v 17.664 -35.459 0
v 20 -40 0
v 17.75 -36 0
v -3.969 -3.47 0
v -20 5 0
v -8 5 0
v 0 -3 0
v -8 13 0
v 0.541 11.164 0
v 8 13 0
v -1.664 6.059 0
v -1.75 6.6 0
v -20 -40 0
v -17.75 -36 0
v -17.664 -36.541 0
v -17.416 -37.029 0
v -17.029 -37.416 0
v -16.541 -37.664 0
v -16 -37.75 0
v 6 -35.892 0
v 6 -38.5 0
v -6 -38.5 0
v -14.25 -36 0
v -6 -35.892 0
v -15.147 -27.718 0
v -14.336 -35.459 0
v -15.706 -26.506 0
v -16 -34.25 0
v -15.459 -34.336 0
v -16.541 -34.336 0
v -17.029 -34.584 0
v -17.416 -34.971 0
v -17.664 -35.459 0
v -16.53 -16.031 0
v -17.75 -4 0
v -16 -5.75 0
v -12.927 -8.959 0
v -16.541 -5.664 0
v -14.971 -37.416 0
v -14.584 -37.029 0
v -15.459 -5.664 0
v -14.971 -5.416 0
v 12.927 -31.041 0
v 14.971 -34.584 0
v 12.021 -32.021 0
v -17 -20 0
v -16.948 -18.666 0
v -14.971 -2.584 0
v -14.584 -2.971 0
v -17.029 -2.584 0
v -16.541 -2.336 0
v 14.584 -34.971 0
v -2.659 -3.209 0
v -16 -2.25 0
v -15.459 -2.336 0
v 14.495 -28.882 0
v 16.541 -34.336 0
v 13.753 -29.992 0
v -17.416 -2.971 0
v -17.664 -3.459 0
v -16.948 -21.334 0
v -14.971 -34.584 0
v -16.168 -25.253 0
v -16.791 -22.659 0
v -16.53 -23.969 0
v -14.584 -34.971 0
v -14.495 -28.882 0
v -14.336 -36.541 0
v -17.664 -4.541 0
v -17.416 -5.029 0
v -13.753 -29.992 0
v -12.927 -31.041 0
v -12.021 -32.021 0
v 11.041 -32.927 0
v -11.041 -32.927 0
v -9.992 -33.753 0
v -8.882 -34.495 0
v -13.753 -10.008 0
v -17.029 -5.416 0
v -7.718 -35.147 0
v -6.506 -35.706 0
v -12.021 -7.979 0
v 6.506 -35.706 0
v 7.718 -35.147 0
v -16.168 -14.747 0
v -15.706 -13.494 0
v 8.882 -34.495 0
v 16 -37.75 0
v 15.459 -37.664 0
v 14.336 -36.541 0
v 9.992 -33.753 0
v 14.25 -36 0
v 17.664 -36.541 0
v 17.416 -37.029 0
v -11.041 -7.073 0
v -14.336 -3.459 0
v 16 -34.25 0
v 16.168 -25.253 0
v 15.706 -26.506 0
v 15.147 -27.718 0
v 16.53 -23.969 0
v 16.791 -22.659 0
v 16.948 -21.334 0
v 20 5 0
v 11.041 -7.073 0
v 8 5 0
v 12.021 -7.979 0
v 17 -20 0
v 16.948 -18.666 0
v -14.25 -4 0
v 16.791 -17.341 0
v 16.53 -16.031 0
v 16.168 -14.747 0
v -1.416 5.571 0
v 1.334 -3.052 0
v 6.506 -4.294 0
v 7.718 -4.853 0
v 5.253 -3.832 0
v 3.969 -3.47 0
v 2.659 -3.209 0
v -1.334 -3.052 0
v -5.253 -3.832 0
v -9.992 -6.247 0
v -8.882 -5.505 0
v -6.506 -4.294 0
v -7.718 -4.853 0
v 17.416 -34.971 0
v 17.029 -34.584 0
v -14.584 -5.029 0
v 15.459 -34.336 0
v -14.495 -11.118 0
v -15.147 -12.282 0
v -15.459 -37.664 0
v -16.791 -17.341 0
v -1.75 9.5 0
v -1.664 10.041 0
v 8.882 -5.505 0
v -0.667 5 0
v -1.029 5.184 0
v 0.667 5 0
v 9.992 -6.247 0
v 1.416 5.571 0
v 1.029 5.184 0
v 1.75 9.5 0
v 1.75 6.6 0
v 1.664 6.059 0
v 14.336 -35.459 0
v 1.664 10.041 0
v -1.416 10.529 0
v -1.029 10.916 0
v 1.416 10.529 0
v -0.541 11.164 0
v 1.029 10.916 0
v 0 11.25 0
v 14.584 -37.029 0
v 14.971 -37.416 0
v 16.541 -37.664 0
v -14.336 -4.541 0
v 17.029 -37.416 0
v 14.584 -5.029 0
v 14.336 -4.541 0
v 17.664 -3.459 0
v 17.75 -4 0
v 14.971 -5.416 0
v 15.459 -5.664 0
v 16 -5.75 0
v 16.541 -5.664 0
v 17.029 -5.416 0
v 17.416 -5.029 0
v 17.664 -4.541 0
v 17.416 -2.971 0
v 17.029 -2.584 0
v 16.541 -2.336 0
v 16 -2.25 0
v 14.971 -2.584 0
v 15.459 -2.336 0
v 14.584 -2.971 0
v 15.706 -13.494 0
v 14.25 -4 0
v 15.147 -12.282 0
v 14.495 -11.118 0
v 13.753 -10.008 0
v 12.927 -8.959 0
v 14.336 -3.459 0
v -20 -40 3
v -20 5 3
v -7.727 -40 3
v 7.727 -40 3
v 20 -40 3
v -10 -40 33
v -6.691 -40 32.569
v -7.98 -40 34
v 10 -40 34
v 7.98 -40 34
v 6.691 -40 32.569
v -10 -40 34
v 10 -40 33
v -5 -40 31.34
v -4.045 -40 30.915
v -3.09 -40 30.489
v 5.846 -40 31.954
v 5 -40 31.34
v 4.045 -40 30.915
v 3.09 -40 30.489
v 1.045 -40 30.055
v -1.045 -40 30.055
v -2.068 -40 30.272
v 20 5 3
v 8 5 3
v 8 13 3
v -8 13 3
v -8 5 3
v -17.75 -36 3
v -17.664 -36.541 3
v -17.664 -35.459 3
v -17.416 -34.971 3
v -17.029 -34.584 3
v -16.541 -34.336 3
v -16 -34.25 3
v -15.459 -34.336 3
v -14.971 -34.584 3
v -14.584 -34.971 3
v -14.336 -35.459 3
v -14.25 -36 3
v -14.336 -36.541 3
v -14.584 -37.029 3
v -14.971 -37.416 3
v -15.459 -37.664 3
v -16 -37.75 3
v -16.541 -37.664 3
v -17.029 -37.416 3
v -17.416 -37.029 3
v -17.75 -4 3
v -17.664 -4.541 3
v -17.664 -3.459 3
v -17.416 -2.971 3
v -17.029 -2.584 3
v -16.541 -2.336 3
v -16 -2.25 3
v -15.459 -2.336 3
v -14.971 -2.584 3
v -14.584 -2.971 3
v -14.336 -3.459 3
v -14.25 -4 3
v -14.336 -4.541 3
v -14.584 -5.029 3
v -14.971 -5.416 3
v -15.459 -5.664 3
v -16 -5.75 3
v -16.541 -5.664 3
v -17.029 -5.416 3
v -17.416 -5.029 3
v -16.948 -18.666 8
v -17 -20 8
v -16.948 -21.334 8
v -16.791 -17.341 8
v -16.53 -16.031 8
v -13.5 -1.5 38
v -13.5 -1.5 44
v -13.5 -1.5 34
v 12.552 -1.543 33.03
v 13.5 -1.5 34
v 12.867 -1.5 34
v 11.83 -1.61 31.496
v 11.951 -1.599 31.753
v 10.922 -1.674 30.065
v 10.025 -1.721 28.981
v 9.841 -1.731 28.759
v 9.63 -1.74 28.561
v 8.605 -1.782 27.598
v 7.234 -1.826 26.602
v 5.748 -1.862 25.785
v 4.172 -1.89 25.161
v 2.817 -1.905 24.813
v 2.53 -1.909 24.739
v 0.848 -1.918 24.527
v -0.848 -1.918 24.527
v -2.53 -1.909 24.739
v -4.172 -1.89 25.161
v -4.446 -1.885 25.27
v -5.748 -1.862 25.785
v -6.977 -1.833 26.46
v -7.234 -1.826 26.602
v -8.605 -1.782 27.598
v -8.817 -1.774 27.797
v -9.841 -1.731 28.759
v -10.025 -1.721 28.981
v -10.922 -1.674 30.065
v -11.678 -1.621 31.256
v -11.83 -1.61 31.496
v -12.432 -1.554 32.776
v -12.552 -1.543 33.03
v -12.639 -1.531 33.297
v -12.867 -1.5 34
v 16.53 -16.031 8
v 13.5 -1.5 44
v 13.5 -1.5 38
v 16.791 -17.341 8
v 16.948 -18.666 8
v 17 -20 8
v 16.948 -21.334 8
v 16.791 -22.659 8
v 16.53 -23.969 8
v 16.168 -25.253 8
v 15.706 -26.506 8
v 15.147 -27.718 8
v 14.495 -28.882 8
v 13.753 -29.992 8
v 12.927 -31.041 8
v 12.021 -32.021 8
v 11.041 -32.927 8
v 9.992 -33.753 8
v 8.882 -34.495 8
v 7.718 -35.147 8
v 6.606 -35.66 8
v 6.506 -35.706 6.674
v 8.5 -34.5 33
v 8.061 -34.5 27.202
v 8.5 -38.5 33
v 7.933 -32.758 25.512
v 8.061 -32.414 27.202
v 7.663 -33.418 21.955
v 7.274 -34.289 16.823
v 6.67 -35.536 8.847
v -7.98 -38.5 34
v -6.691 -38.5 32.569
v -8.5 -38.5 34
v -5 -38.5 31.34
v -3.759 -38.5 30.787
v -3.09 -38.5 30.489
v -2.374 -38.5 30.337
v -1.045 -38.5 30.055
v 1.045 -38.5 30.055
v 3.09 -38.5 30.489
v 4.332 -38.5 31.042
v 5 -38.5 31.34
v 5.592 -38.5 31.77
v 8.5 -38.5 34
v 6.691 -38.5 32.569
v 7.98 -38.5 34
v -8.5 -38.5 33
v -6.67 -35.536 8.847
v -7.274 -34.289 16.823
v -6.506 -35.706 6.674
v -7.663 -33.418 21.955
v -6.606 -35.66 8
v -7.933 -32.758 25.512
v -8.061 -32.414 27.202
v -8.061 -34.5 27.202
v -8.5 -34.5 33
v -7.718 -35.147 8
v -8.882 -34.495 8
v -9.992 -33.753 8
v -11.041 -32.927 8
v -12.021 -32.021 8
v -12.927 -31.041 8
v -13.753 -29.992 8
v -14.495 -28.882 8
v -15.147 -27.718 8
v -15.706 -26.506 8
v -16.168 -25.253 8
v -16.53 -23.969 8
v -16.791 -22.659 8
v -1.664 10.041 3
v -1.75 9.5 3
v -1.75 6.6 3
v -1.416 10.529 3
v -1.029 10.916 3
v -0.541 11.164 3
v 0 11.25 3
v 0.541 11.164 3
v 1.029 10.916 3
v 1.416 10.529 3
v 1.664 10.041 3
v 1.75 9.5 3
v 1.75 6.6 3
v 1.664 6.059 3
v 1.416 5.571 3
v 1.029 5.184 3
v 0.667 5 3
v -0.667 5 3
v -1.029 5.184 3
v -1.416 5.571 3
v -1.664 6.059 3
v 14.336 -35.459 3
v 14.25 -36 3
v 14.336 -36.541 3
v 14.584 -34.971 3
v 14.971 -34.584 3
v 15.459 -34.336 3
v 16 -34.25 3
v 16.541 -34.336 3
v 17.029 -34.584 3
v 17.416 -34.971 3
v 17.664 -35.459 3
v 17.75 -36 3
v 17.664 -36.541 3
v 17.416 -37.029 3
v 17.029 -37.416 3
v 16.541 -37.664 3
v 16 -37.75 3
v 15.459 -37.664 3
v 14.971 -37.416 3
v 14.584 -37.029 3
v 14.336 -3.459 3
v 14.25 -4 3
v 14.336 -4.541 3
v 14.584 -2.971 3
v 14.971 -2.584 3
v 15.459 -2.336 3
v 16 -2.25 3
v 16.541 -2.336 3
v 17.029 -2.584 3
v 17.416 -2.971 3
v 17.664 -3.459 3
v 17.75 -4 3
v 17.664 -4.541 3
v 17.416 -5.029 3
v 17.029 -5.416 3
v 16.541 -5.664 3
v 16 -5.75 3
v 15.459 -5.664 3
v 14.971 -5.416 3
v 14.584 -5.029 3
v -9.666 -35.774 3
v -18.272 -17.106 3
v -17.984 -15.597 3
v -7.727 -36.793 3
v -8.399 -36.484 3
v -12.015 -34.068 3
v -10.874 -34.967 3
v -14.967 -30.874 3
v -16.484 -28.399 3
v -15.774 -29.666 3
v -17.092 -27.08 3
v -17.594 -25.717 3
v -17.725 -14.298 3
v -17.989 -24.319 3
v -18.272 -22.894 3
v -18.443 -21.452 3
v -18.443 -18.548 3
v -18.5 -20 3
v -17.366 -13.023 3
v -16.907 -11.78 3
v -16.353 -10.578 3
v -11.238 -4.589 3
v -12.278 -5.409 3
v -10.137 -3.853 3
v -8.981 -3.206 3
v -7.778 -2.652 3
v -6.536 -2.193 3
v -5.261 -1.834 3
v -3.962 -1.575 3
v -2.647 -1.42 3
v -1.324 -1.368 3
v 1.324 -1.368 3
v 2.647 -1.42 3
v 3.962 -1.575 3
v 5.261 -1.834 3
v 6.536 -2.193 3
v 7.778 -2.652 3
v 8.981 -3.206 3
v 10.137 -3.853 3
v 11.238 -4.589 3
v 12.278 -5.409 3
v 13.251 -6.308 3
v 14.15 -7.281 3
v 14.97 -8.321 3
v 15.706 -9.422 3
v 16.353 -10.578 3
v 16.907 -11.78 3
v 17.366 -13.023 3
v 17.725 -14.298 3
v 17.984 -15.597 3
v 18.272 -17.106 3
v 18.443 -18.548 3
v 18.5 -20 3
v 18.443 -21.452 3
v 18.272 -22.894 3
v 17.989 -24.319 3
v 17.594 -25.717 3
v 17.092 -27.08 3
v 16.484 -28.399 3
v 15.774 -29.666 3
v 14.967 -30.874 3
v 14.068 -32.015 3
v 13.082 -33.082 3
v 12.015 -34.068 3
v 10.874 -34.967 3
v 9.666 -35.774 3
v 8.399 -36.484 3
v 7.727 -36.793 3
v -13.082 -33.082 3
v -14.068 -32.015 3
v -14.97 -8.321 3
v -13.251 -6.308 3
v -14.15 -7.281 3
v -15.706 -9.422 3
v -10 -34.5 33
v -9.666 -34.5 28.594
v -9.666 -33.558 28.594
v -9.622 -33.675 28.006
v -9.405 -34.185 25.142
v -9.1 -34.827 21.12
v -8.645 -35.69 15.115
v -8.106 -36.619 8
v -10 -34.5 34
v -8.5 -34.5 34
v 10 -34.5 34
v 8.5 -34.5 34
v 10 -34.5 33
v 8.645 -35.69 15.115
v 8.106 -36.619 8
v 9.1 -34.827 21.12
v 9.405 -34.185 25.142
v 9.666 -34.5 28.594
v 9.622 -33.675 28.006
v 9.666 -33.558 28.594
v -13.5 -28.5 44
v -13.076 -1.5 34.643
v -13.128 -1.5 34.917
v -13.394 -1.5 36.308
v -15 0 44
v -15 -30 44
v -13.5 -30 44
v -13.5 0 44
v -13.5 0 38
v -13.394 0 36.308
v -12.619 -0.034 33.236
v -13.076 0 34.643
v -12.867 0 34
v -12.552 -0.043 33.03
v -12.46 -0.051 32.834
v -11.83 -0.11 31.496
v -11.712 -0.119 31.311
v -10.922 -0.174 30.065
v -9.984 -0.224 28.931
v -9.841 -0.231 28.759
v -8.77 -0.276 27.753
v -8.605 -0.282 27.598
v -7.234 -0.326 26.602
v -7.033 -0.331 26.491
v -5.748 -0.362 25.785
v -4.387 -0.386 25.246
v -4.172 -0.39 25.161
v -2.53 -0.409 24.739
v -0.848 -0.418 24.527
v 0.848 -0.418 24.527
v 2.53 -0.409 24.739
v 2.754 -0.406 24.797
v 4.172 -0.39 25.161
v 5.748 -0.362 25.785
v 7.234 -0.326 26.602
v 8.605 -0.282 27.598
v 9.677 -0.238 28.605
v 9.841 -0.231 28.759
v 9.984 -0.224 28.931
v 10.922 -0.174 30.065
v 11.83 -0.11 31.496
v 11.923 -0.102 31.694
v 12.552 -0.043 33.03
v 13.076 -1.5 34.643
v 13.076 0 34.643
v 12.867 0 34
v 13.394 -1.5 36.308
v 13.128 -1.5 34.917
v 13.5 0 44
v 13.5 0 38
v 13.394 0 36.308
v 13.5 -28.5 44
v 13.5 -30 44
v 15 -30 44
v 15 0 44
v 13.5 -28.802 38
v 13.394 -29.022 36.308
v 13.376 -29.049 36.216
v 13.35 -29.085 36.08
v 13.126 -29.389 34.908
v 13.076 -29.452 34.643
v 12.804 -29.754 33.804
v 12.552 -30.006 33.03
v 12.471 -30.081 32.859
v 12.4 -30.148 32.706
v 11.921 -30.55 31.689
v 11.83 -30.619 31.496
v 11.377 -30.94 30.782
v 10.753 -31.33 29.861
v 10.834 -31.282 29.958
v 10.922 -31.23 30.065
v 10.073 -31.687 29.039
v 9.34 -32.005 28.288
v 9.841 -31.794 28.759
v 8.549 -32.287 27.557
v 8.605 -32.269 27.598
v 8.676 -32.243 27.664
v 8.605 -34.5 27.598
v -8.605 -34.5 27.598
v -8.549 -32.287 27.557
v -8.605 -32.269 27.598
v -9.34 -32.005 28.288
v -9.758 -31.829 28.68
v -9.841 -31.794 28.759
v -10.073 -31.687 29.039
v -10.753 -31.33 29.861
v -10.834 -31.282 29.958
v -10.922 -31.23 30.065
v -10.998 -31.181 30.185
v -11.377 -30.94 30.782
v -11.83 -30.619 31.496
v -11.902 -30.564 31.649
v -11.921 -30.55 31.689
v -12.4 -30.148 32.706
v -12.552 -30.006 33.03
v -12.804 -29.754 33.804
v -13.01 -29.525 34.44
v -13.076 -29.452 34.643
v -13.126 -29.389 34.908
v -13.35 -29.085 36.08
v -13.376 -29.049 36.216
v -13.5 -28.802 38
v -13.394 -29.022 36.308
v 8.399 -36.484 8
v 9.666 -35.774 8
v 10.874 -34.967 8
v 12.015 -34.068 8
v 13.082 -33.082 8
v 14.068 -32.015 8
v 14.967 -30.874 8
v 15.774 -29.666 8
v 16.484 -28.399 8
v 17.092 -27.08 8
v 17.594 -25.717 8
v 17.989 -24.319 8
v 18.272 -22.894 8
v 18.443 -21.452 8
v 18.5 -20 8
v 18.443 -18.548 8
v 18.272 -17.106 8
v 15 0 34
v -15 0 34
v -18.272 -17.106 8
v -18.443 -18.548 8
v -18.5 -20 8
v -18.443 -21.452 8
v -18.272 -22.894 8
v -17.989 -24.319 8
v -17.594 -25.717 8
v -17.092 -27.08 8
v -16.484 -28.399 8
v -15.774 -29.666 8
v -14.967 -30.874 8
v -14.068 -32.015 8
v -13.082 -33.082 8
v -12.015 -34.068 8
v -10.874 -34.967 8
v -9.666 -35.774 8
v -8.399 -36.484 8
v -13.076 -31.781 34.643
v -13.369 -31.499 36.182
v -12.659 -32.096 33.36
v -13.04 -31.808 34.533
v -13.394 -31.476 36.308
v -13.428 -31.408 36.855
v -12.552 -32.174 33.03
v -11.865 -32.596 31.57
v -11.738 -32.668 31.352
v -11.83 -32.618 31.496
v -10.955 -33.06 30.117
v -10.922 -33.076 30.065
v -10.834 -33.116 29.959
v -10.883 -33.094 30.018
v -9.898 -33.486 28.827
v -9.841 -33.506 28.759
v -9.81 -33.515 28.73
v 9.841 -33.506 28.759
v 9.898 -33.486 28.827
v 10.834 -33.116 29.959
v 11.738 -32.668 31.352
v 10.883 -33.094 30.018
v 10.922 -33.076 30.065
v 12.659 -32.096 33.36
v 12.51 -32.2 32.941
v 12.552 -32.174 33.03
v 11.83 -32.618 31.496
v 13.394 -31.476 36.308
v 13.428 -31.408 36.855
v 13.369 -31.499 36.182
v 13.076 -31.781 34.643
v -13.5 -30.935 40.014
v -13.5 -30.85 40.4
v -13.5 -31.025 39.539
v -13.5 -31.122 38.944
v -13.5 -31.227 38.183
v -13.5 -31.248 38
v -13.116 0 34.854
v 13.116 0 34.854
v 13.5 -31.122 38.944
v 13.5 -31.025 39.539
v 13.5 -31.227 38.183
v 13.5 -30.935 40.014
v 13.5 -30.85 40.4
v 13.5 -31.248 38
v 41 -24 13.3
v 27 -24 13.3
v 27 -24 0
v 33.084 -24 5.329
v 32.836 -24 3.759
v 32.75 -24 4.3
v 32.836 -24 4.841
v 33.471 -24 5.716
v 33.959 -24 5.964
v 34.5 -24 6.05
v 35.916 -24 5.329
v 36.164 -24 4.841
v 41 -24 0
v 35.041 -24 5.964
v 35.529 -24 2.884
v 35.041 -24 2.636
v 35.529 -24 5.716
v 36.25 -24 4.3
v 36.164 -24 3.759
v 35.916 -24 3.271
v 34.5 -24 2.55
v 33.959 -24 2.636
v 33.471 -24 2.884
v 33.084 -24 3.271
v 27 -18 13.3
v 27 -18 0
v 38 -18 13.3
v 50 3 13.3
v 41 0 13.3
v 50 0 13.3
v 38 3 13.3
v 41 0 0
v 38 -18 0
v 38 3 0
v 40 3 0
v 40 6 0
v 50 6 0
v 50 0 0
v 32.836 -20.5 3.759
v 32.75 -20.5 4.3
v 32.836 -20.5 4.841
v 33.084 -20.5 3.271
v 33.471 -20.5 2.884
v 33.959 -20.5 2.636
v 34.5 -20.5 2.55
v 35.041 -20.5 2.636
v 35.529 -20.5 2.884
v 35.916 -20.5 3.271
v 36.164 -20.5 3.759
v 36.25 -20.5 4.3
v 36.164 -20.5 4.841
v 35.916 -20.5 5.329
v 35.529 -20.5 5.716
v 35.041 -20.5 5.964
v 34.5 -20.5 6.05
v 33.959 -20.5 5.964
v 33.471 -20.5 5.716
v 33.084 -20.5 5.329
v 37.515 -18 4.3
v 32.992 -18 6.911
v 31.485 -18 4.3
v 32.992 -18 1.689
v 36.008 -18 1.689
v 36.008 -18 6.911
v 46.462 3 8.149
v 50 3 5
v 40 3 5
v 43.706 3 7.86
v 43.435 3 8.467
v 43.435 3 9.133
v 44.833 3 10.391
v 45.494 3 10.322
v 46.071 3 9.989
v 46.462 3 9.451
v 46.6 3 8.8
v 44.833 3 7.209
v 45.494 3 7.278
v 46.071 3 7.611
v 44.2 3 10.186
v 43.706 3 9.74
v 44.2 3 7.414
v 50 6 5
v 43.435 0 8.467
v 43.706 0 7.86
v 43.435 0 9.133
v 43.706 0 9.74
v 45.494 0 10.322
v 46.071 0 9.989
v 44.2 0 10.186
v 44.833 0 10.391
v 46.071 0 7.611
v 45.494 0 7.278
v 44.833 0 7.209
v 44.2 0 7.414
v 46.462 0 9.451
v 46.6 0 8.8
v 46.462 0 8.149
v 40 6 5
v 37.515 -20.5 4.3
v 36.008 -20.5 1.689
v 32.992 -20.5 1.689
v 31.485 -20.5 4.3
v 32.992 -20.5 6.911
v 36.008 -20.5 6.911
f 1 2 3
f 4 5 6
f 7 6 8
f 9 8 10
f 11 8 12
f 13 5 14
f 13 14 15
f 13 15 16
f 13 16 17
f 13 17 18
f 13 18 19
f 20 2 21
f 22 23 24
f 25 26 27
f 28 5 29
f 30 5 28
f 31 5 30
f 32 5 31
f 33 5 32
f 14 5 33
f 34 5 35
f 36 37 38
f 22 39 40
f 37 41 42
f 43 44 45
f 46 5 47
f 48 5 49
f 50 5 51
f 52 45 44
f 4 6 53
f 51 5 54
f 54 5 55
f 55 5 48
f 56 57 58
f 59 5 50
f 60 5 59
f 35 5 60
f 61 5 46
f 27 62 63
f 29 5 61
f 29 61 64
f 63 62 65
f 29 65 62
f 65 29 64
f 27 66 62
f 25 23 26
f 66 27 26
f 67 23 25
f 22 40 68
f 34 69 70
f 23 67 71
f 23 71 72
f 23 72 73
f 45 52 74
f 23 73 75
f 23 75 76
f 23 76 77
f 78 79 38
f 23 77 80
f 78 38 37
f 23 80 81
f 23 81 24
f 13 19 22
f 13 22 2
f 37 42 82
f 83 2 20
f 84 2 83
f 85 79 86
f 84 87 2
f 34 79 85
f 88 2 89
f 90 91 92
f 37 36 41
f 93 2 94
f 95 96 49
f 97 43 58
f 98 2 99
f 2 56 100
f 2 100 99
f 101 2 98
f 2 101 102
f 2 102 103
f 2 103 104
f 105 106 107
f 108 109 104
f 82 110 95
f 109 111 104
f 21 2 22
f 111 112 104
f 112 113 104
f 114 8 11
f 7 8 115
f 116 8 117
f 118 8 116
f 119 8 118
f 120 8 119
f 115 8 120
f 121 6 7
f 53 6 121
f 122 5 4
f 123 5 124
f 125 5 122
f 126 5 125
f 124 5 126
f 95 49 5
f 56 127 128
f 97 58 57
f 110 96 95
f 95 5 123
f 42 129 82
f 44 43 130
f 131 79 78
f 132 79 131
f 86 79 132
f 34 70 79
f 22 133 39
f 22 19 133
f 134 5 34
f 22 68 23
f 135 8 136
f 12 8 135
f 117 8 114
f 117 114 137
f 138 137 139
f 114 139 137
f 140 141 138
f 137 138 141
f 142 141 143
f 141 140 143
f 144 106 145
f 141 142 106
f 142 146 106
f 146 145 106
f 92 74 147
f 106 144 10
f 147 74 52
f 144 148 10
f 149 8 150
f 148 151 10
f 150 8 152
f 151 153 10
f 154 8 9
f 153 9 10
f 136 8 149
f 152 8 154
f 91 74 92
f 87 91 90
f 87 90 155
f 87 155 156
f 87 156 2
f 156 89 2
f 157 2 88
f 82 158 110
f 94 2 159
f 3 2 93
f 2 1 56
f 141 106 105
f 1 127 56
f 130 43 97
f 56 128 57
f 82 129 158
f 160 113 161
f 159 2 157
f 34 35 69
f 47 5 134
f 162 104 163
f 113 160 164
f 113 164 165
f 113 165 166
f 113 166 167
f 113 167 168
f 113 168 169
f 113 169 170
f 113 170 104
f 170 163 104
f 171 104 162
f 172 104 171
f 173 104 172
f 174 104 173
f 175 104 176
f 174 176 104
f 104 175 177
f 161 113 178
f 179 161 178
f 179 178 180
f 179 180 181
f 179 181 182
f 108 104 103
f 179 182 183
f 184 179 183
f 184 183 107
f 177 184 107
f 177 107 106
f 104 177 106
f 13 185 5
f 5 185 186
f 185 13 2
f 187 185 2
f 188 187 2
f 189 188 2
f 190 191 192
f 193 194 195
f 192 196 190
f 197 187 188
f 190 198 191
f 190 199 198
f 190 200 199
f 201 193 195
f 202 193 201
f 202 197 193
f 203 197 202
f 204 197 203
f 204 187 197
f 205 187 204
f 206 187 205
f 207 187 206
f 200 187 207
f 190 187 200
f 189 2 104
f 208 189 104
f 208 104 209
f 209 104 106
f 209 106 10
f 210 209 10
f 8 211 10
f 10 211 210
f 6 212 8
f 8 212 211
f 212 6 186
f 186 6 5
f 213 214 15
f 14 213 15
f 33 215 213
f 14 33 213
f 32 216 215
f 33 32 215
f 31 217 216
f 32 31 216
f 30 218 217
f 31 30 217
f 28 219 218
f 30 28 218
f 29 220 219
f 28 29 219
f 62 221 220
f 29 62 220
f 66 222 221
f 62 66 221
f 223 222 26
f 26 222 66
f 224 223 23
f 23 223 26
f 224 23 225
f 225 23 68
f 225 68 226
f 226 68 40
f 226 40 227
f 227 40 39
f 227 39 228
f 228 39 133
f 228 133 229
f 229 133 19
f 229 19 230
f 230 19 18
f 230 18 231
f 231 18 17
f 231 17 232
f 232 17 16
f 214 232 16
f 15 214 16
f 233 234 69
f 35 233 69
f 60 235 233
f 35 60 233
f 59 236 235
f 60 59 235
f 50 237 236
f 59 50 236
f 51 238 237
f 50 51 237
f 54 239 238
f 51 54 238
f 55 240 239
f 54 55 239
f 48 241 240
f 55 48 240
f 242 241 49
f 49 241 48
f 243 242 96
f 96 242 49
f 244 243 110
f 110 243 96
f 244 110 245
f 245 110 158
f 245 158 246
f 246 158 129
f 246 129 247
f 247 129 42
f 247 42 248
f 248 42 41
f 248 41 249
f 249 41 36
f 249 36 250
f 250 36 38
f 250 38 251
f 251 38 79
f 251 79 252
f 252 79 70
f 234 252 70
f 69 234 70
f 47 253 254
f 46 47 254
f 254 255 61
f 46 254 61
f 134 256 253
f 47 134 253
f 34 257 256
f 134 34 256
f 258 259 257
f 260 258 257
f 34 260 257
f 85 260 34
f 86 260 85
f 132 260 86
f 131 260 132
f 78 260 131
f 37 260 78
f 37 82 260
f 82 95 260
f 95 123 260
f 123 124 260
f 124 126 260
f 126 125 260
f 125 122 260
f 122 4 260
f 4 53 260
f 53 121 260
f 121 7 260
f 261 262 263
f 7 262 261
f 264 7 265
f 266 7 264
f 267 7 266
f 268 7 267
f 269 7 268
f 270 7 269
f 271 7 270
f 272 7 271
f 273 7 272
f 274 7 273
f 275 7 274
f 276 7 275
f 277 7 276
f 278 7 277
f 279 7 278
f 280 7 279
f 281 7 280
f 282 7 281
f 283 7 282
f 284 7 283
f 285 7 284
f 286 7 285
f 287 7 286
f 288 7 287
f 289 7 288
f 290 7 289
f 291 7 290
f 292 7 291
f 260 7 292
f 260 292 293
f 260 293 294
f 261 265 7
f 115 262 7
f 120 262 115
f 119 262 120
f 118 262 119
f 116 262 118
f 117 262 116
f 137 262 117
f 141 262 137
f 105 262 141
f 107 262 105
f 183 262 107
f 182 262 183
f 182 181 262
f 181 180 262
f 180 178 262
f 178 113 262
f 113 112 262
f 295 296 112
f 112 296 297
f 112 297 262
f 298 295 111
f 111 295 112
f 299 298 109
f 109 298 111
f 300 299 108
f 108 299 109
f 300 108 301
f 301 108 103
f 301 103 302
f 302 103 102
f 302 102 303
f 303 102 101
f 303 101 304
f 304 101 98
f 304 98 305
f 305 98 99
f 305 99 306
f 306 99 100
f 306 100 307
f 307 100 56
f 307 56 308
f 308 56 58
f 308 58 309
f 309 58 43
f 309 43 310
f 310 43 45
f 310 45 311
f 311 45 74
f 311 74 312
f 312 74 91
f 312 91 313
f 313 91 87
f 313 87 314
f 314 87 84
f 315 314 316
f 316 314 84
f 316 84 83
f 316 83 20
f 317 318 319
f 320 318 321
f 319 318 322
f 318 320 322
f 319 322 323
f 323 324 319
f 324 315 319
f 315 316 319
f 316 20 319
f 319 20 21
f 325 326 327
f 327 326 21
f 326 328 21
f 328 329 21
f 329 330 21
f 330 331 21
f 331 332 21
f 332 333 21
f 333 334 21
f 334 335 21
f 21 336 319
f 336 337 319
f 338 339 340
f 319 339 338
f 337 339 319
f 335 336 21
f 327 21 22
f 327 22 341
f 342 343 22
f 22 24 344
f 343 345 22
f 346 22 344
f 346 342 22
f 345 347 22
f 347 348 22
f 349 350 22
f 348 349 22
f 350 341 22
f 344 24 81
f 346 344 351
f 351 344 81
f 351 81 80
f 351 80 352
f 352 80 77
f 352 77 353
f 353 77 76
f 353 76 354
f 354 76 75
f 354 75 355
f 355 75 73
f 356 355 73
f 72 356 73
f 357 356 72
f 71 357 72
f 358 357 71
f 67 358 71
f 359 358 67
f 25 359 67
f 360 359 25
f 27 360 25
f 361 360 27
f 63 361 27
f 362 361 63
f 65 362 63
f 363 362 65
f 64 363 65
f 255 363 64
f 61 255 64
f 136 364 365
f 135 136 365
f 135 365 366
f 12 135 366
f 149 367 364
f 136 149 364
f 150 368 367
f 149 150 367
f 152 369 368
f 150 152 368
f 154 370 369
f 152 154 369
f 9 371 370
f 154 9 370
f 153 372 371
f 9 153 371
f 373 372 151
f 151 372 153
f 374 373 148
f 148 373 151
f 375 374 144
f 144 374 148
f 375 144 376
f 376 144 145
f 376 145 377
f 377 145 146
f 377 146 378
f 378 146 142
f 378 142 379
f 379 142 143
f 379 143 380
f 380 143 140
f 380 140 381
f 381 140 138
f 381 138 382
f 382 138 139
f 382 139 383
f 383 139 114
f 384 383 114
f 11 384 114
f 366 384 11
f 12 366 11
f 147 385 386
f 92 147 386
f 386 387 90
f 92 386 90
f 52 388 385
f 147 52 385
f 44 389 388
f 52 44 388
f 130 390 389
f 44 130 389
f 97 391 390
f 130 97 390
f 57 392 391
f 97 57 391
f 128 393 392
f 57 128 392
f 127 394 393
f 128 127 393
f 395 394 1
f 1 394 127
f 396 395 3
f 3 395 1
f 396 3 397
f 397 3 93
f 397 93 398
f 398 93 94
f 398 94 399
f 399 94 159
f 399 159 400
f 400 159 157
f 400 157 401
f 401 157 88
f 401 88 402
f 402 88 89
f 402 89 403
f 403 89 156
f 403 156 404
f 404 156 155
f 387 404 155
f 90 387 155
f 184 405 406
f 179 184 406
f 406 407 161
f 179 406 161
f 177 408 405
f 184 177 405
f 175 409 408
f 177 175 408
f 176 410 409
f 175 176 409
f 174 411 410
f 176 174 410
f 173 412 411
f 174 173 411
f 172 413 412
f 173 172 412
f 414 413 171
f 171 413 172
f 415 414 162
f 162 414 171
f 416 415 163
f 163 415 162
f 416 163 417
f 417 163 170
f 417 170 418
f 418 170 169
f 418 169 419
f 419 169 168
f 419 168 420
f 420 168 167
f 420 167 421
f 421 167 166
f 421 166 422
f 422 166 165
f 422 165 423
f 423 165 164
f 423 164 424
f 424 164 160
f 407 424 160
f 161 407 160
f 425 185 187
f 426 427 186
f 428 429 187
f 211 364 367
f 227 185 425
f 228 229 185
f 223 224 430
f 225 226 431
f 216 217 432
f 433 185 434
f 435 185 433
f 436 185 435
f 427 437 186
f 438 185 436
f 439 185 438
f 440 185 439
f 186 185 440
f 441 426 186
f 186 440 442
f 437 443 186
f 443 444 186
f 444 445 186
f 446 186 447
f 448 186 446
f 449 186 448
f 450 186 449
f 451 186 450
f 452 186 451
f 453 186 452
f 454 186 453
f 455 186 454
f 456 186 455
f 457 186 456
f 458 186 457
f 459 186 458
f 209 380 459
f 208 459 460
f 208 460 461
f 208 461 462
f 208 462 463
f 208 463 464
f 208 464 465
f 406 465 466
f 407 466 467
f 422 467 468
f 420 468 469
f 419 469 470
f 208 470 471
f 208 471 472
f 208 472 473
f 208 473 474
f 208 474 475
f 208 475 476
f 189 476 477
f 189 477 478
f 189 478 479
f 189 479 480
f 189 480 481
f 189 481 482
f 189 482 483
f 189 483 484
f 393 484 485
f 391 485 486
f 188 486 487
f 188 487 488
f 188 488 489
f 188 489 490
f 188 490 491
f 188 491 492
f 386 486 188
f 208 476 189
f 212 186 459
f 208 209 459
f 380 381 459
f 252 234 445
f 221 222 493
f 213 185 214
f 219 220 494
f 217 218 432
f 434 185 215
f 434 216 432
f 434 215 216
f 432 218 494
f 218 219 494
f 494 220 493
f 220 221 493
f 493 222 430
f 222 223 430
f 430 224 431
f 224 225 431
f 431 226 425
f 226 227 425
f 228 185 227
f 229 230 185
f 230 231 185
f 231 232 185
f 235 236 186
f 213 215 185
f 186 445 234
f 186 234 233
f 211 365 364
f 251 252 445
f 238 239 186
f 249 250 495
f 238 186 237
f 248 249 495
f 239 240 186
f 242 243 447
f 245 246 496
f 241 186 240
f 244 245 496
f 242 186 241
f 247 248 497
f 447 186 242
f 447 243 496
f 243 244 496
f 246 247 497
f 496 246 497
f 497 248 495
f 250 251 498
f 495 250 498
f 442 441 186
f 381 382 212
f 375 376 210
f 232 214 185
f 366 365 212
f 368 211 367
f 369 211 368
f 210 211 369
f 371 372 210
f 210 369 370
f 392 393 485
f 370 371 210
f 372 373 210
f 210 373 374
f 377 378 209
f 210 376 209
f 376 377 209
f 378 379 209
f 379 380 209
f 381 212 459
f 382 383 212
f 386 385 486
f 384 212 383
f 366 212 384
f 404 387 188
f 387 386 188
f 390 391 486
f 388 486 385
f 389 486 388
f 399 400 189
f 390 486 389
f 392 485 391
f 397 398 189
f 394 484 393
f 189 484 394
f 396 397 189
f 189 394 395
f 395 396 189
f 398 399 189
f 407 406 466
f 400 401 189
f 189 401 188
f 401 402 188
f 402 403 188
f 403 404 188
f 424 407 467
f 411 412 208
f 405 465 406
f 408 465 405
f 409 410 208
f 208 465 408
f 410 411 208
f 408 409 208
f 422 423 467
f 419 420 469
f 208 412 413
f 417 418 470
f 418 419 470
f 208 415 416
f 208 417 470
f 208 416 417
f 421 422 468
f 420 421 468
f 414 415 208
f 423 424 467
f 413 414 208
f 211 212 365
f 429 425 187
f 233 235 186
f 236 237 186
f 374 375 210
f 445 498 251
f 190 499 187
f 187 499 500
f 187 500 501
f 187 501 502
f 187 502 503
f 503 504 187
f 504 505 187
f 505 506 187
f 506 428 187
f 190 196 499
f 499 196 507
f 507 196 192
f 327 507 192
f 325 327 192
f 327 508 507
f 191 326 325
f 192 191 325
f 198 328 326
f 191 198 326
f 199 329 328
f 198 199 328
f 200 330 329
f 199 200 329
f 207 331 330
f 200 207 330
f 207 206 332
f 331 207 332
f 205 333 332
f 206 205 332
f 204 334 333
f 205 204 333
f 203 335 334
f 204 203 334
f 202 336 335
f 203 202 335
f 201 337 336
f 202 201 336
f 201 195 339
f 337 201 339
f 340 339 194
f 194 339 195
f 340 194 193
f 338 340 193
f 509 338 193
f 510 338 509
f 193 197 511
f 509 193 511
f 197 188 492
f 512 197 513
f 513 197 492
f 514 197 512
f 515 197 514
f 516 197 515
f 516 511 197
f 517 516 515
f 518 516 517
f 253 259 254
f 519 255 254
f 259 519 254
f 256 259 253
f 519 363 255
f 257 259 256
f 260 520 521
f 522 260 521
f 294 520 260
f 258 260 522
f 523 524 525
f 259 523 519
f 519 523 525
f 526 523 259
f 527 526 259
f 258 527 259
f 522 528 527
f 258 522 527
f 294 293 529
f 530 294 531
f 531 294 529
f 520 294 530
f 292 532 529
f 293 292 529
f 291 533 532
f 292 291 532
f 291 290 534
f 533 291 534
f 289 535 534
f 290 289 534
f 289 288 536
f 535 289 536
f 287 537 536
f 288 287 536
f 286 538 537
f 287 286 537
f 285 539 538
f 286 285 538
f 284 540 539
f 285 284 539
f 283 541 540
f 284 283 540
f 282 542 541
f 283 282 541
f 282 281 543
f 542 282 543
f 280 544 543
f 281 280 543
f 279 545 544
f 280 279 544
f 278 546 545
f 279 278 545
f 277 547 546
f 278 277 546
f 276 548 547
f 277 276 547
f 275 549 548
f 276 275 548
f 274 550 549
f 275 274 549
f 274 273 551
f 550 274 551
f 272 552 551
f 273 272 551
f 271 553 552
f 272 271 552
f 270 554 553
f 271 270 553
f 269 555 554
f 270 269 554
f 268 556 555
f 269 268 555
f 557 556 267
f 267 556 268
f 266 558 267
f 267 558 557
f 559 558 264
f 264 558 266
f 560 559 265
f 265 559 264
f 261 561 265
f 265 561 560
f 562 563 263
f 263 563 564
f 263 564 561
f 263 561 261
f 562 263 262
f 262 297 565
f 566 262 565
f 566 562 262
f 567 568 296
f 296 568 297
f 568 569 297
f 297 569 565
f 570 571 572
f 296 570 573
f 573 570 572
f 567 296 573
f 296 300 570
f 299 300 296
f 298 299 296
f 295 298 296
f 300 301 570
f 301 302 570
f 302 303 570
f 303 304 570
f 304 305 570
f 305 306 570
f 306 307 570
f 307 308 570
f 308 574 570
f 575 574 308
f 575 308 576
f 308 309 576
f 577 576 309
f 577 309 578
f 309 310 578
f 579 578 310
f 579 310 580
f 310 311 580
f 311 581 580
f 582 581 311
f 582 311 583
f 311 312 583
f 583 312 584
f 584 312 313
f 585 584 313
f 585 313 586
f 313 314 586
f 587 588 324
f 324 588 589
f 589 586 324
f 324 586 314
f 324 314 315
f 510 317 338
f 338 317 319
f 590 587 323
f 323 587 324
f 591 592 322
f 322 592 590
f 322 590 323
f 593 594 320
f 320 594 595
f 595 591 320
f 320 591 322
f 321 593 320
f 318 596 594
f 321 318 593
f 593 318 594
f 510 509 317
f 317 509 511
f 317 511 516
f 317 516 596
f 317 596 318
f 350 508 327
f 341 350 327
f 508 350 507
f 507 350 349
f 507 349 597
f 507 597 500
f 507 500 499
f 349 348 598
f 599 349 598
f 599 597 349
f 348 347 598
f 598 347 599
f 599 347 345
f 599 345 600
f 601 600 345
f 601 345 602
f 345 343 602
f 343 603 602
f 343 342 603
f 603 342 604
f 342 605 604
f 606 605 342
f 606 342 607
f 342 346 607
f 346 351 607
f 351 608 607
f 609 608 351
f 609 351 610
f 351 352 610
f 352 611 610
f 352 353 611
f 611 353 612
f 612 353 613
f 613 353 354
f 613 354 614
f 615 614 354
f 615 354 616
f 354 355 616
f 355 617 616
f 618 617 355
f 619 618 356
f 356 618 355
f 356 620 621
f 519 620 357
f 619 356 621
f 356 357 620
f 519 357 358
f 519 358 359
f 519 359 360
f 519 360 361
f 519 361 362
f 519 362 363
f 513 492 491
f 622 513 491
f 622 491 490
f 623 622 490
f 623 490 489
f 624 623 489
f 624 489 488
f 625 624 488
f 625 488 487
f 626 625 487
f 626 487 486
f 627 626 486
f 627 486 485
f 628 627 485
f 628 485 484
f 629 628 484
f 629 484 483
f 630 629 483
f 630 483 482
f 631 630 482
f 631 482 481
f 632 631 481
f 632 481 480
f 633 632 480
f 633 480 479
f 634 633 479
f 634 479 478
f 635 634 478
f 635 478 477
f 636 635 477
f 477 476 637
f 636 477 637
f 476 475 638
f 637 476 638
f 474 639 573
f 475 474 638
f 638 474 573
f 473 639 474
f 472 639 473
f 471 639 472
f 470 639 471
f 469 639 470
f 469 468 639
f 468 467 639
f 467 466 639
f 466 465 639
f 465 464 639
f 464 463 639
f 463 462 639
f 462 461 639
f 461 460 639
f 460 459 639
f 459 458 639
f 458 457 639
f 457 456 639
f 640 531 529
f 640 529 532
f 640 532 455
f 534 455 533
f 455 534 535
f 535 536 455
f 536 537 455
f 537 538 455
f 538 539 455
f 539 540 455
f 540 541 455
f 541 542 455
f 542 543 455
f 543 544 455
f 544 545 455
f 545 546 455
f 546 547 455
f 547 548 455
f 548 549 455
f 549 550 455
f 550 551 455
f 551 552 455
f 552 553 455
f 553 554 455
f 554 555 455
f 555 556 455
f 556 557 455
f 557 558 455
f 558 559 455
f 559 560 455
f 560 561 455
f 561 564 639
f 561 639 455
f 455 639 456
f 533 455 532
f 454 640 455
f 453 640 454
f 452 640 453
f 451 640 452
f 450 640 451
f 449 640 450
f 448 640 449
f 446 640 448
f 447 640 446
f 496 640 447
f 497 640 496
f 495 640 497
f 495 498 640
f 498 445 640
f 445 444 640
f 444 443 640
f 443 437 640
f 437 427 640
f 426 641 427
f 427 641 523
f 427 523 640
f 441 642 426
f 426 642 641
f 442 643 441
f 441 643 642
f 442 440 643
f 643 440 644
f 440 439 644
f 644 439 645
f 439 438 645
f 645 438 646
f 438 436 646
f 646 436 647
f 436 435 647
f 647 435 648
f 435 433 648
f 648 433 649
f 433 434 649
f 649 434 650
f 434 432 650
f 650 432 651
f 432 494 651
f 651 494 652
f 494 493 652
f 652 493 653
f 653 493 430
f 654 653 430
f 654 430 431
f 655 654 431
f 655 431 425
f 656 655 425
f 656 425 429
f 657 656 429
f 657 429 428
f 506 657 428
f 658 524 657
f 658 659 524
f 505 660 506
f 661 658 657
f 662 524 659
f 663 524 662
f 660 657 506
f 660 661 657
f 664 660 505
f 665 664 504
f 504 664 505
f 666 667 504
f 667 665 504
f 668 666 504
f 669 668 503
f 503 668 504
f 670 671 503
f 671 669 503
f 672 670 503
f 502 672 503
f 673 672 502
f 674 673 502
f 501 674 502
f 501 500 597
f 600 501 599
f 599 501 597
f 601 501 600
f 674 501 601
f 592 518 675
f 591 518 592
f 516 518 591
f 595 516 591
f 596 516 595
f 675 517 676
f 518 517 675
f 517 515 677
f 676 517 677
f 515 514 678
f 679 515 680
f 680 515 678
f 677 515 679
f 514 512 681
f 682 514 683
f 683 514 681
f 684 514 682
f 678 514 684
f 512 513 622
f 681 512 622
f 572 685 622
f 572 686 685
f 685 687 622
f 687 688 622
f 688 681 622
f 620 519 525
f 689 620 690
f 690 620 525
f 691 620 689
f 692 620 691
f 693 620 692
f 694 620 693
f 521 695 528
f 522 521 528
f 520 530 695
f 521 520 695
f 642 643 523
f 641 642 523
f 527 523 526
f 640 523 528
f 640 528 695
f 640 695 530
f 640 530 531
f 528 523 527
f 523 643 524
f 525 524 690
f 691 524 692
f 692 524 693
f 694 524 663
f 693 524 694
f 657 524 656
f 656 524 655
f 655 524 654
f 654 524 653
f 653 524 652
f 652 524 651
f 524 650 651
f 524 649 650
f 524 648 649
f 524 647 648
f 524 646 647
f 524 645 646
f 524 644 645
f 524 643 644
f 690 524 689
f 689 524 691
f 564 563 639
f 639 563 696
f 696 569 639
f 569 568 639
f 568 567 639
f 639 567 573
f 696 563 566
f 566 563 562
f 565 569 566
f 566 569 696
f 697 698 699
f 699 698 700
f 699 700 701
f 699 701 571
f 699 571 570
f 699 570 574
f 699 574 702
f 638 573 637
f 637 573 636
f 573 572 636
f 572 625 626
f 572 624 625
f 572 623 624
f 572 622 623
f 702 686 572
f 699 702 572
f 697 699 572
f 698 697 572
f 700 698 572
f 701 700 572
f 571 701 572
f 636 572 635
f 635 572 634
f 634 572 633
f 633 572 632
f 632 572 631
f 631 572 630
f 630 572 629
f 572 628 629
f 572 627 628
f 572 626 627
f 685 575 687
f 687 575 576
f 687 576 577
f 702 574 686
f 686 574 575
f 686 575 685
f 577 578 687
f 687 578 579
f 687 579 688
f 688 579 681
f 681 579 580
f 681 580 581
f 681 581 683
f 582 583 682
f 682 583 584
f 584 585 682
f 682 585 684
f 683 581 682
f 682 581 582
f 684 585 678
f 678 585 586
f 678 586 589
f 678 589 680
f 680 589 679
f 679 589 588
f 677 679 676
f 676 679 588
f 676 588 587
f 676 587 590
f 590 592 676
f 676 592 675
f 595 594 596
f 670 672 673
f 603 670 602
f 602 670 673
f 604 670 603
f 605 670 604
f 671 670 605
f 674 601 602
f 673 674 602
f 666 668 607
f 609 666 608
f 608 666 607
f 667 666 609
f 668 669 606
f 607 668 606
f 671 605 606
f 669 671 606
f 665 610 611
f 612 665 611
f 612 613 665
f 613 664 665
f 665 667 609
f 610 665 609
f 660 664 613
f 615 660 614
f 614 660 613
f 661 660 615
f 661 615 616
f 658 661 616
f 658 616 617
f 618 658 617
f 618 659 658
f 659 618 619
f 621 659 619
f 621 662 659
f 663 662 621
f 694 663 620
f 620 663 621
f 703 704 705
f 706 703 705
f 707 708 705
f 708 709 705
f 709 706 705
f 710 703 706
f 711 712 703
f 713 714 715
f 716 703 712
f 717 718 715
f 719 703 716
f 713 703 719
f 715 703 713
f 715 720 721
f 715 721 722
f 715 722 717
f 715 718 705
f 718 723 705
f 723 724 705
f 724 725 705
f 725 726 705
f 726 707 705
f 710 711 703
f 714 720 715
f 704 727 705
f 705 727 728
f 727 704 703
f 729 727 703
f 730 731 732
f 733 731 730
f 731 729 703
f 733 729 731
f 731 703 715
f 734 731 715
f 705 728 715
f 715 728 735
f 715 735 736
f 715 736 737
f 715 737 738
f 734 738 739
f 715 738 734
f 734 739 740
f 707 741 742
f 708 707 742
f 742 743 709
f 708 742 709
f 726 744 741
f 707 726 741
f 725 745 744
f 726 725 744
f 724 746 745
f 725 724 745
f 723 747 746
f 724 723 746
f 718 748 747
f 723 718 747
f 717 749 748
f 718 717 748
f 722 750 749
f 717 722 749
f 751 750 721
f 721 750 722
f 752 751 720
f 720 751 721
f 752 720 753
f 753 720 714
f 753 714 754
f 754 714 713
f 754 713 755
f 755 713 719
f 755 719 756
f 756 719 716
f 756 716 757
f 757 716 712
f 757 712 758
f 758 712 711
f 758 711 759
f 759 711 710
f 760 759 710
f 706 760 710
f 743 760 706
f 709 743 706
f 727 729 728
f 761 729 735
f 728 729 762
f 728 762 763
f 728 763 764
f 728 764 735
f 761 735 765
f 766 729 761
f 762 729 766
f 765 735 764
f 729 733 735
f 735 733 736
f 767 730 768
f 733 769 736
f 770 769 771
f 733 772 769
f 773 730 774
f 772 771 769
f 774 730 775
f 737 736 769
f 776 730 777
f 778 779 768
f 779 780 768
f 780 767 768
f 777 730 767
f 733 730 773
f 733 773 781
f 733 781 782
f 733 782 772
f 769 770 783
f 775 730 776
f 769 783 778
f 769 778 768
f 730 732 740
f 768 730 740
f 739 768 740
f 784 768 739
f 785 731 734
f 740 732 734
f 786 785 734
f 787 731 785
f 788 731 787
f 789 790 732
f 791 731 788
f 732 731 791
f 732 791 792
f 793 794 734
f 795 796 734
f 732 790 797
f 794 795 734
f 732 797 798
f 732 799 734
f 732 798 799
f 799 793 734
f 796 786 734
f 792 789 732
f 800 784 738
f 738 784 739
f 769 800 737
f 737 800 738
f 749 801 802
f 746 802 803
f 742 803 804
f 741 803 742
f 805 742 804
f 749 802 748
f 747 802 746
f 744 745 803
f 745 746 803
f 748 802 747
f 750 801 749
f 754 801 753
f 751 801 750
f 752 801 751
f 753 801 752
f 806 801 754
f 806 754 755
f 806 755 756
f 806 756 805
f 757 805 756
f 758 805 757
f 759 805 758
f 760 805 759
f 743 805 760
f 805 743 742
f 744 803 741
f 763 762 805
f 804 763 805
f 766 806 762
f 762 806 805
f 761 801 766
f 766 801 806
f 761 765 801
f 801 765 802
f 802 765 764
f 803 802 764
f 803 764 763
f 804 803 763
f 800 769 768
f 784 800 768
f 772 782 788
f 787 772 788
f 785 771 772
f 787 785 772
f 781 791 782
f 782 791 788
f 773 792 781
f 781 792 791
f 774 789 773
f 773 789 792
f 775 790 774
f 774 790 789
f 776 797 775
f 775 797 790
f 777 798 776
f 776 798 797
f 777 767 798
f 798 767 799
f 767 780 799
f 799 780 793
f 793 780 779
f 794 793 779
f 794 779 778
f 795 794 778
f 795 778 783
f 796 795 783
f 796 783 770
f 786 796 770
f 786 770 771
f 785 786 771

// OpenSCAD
module fan_duct_holder(){
   difference(){
    union(){
    cube([10,13.3,3]);
    translate([0,11.3-3,+3])cube([10,5,3]);   
    translate([-2,0,-24])cube([3,13.3,27]);
    translate([-13,0,-24])cube([13,13.3,6]);
    //translate([-13-3,0,-24-3])cube([3,13.5,3]);
   }
    translate([5,+4.5,-80+4])cylinder(r=3.2/2,h=80,$fn=15);
    translate([-5.5,18-5-4,-31])cylinder(r=3.5/2,h=20,$fn=20);
   translate([-5.5,18-5-4,-20.5])cylinder(r=6.03/2,h=3,$fn=6); 
   
   }
}


module fan_duct1(){

module duct(){
translate([-8,5])
difference(){
cube([16,8,3]);
translate([8,4,-1]){
hull(){
translate([0,0.5])cylinder(r=3.5/2,h=10,$fn=20);
translate([0,-2.4])cylinder(r=3.5/2,h=10,$fn=20);
}
}

}
difference(){
translate([-20,-40,0])cube([40,45,3]);
translate([-16,-4,-1])cylinder(r=3.5/2,h=6,$fn=20);
translate([16,-4,-1])cylinder(r=3.5/2,h=6,$fn=20);
translate([-16,-36,-1])cylinder(r=3.5/2,h=6,$fn=20);
translate([16,-36,-1])cylinder(r=3.5/2,h=6,$fn=20);
translate([0,-20,-1])cylinder(r=37/2,h=6,$fn=80);

}
difference(){
difference(){
union(){
hull(){
translate([0,-20,0])cylinder(r=37/2,h=8,$fn=80);
translate([-15,-30,17+17])cube([30,30,10]);
}
hull(){
translate([-15/2,-40,0])cube([15,30,1]);
translate([-20/2,-40,17+16])cube([20,30,1]);
}
}
hull(){
translate([0,-20,0])cylinder(r=37/2-1.5,h=8,$fn=80);
translate([-27/2,-27-1.5,17+17])cube([27,27,10]);
}
}
hull(){
translate([0,5,38])rotate([90,0,0])cylinder(r=27/2,h=39.5,$fn=50);
translate([0,5,35+10])rotate([90,0,0])cylinder(r=27/2,h=39.5,$fn=50);
}
}
}

difference(){
duct();
hull(){
translate([-(20-3)/2,-40+1.5,17+16])cube([20-3,30,1]);
translate([-(15-3)/2,-40+1.5,0])cube([15-3,30,1]);
}
translate([0,-35,17+23])rotate([90,0])cylinder(r=20/2,h=10,$fn=30);
}
}

translate([40,0,13.3])rotate([-90,0,0])fan_duct_holder();

fan_duct1();
